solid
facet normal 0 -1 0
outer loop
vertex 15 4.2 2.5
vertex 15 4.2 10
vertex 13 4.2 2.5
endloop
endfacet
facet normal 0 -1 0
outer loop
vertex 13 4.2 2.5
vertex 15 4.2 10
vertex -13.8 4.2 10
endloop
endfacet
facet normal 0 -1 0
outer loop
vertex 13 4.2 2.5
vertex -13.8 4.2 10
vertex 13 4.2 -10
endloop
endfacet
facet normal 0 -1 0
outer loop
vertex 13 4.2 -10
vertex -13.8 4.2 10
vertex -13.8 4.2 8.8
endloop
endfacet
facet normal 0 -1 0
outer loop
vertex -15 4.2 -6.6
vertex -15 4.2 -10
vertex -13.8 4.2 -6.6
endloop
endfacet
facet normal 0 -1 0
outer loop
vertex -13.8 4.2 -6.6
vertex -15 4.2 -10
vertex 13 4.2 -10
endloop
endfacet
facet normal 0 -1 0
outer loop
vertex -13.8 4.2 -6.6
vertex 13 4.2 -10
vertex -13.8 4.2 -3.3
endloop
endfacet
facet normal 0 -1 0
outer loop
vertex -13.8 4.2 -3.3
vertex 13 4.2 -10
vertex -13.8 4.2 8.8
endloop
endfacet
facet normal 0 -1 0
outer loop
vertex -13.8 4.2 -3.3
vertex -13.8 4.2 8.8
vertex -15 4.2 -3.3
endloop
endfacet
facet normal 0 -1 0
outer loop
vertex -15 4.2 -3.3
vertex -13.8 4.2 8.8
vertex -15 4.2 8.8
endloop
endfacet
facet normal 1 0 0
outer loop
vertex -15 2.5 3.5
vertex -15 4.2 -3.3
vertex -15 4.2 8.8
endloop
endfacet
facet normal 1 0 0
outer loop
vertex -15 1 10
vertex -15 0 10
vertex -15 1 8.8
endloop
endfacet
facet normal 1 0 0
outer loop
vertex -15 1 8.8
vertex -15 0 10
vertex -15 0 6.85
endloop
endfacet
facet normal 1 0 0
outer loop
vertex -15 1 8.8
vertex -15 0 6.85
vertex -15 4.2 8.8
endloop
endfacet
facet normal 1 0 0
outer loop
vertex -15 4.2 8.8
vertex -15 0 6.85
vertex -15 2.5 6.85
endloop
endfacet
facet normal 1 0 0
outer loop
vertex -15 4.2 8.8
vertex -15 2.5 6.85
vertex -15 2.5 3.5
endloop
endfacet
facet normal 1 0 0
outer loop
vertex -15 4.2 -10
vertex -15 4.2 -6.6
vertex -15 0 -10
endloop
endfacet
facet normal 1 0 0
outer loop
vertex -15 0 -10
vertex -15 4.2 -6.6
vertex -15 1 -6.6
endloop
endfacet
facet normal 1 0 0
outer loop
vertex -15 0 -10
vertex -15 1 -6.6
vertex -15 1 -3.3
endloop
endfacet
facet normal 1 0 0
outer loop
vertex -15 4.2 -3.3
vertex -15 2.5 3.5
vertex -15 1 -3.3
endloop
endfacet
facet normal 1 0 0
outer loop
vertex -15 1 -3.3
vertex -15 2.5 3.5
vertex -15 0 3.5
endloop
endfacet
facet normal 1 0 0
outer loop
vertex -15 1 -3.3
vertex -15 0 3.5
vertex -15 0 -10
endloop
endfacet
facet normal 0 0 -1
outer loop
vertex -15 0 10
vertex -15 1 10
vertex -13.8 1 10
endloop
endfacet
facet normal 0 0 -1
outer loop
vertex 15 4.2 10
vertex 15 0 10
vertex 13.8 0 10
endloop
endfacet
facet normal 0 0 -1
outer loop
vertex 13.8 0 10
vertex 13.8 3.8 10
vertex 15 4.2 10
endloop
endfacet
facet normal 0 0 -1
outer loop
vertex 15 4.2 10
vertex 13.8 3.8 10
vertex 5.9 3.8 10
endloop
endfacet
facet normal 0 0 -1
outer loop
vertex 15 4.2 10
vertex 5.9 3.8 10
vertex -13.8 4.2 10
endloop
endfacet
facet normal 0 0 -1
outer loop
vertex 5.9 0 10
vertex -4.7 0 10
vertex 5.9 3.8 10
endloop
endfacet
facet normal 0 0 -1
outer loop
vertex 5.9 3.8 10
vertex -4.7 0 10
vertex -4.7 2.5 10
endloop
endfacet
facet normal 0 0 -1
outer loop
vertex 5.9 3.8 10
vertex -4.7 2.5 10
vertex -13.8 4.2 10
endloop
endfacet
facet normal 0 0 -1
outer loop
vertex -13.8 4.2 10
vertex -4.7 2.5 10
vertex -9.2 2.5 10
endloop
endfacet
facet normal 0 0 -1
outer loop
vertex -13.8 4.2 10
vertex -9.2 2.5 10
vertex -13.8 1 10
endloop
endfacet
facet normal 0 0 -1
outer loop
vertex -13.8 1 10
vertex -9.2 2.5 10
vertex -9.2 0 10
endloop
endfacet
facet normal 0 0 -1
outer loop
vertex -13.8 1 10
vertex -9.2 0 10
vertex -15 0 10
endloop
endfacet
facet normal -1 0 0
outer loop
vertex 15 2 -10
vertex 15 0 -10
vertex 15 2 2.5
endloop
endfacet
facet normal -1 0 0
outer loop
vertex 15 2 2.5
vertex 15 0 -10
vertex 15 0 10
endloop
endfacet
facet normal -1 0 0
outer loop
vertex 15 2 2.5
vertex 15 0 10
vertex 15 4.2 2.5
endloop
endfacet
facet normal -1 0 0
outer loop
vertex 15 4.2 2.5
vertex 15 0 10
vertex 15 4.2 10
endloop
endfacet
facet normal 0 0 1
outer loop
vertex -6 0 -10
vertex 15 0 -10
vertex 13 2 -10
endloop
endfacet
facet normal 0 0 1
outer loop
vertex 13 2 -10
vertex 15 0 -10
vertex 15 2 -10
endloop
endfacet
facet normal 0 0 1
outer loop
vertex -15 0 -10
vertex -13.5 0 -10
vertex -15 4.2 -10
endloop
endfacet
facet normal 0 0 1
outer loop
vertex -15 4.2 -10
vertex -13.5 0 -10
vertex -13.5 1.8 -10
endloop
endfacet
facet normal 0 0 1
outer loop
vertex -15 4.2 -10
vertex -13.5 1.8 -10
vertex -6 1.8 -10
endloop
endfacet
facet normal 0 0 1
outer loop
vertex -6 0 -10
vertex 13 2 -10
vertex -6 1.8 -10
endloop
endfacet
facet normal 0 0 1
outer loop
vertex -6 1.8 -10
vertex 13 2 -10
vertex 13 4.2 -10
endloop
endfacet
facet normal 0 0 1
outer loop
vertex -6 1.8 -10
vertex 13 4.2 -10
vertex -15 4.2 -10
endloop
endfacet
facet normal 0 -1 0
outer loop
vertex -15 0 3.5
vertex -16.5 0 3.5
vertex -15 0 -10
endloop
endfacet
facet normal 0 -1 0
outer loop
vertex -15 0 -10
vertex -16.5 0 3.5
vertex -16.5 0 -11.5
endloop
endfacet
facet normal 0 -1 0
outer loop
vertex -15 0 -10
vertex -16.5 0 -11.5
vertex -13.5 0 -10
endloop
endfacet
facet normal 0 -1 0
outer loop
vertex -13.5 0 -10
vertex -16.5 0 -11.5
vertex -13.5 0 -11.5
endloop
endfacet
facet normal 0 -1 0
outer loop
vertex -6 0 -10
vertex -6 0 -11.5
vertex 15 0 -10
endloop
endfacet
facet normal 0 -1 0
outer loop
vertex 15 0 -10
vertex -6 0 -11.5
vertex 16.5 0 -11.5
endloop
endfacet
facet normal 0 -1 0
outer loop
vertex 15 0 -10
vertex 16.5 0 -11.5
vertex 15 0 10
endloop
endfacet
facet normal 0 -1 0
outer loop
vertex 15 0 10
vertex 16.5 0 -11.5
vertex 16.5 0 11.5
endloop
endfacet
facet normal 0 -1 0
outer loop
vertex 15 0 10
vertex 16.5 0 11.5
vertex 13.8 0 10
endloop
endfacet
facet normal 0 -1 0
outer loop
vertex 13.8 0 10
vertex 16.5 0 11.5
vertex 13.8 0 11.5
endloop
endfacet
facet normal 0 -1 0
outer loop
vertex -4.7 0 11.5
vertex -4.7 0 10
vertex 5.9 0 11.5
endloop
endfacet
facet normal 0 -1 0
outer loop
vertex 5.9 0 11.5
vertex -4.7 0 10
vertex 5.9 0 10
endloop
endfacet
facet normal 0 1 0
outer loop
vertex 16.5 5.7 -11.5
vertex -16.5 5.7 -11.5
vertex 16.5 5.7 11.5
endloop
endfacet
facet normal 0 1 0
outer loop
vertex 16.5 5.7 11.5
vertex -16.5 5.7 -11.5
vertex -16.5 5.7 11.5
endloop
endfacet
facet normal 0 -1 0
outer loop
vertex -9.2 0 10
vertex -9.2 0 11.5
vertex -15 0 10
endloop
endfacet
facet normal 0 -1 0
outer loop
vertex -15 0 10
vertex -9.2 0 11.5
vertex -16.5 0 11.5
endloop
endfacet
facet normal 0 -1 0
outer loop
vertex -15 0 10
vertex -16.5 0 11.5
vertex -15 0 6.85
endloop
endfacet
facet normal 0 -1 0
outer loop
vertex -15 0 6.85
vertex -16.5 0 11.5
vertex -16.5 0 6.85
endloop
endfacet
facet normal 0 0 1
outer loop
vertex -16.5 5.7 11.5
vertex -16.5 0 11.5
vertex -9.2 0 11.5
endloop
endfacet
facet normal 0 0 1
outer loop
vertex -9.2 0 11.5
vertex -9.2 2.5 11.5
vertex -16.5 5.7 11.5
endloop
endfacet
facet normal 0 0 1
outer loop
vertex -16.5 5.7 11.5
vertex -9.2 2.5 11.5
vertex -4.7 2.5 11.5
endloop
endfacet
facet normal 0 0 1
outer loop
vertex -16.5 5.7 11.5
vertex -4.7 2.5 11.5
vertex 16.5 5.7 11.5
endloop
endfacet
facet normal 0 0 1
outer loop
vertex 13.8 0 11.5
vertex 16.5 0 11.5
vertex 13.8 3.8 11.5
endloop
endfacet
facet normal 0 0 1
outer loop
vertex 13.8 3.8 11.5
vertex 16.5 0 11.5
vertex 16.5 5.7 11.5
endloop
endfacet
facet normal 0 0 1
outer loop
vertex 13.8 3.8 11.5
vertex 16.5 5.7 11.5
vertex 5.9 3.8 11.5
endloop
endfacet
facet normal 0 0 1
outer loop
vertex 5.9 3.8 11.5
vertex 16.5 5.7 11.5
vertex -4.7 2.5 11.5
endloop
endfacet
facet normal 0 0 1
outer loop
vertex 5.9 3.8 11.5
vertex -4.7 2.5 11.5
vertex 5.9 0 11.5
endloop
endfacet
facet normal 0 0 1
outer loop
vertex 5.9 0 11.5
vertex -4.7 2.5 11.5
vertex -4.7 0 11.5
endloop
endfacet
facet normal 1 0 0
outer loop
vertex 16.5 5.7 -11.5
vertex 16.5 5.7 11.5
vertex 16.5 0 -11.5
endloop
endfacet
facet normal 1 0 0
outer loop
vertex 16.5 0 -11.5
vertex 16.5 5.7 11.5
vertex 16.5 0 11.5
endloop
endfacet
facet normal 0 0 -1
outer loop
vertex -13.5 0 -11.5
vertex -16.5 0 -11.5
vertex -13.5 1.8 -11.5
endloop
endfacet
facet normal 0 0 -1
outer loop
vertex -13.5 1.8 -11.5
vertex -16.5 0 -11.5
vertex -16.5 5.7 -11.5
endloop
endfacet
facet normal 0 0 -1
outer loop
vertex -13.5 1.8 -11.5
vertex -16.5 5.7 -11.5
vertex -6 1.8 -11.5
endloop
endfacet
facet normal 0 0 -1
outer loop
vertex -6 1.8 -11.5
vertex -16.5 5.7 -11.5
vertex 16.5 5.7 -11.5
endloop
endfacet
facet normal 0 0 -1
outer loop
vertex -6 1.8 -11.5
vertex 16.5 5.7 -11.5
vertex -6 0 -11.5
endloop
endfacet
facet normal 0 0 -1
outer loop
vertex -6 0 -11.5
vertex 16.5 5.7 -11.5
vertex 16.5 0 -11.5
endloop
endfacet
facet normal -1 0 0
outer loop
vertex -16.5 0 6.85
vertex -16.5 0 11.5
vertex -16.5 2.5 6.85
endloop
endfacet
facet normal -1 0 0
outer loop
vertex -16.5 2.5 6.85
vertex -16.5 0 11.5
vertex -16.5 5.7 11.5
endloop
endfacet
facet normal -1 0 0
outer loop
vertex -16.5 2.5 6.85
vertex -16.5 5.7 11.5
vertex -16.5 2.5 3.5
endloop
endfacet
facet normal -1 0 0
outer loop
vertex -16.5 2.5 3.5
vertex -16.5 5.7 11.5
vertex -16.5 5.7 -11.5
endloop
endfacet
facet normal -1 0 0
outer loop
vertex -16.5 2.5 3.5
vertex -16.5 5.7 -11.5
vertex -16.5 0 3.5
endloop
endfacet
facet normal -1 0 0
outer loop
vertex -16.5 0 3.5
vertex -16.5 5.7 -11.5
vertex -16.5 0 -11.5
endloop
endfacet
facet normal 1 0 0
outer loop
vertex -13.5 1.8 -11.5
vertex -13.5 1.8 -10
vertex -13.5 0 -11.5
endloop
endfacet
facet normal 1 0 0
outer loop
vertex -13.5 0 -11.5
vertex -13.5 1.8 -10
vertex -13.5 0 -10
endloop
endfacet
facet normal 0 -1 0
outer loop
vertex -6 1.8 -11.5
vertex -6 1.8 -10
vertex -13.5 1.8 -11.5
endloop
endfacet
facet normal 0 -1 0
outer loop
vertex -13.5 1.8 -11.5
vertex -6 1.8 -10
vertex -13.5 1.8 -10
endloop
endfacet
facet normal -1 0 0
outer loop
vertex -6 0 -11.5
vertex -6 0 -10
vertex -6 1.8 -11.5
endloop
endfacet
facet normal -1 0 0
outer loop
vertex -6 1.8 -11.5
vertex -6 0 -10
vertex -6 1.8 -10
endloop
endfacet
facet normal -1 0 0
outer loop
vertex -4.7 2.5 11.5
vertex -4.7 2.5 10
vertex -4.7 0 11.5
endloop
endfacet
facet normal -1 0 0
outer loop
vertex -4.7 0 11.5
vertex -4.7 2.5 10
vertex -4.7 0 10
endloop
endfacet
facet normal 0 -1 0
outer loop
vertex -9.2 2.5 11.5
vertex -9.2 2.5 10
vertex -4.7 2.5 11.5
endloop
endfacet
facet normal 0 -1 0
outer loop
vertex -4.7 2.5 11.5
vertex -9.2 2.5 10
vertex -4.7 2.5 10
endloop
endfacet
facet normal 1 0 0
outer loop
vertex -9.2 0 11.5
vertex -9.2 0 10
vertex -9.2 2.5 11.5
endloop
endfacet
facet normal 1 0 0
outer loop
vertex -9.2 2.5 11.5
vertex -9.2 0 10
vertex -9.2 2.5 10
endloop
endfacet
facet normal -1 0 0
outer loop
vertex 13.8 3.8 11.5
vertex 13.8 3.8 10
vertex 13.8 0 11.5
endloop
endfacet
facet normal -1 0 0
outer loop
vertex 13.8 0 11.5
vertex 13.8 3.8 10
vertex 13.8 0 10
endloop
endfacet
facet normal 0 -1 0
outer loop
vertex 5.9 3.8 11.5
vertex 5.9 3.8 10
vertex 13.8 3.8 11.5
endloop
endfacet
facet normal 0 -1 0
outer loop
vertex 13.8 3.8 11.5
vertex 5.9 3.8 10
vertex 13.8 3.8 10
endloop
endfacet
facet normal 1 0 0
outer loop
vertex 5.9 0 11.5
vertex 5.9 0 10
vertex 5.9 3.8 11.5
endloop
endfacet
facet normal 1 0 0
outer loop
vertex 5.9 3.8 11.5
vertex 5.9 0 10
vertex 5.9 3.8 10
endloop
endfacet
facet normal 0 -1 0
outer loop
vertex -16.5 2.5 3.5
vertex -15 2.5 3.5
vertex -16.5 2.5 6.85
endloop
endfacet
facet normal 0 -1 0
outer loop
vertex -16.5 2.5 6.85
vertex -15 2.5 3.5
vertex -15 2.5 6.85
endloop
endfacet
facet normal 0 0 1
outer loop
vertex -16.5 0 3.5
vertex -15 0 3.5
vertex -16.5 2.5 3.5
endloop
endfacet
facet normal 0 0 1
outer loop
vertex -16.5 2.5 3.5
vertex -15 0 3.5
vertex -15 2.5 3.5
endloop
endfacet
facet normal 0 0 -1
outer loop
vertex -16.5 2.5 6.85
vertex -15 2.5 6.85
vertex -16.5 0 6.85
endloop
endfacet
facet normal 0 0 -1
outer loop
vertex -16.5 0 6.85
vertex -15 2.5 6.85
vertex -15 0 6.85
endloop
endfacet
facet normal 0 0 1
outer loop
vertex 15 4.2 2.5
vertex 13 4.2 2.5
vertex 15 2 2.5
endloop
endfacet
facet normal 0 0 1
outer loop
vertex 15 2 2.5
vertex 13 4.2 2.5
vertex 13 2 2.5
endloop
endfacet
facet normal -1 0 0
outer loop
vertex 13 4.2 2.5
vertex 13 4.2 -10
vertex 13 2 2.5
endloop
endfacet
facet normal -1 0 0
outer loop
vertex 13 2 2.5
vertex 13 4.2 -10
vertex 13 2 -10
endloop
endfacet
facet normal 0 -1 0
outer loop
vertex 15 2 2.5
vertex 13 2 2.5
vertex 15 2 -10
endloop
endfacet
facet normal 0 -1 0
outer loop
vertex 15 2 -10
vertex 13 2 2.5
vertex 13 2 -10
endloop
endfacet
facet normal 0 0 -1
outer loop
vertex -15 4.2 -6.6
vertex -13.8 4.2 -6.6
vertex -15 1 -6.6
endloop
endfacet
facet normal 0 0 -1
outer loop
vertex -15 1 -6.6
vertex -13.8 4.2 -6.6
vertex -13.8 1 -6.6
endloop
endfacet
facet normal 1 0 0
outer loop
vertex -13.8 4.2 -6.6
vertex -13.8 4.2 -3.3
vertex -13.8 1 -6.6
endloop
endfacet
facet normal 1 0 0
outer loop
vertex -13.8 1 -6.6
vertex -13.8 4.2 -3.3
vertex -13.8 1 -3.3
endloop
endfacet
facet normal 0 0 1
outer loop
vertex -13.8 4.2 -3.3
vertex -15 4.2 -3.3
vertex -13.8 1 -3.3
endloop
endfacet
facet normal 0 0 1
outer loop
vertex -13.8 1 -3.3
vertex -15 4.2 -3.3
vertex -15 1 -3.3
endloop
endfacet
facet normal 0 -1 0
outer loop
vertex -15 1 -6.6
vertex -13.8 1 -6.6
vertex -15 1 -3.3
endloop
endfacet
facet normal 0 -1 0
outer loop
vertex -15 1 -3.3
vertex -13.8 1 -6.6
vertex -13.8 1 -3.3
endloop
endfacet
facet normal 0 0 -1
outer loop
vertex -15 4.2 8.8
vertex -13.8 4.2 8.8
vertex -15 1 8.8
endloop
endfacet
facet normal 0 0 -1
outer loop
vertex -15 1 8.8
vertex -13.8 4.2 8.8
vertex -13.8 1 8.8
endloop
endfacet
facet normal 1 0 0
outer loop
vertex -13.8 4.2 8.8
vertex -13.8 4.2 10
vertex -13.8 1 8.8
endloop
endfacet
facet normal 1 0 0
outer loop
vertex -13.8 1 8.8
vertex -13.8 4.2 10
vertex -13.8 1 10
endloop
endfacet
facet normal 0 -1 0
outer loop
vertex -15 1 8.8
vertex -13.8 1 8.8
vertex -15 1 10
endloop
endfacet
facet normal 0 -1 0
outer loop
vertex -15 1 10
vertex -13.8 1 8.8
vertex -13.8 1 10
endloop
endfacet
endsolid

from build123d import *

# Parameters (mm, degrees)
SKETCH1_W           = 33
SKETCH1_H           = 23
SKETCH1_W_2         = 30
SKETCH1_H_2         = 20
BOSS_EXTRUDE1_DEPTH = 5.7
SKETCH2_W           = 30
SKETCH2_H           = 20
BOSS_EXTRUDE2_DEPTH = 1.5
CUT_EXTRUDE1_REACH  = 25
SKETCH3_W           = 7.5
SKETCH3_H           = 3.6
CUT_EXTRUDE2_REACH  = 25
SKETCH4_W           = 7.9
SKETCH4_H           = 7.6
SKETCH4_W_2         = 4.5
SKETCH4_H_2         = 5
CUT_EXTRUDE3_REACH  = 35
SKETCH5_W           = 3.35
SKETCH5_H           = 5
SKETCH6_W           = 2
SKETCH6_H           = 12.5
BOSS_EXTRUDE3_DEPTH = 2.2
SKETCH7_W           = 1.2
SKETCH7_H           = 3.3
SKETCH7_H_2         = 1.2
BOSS_EXTRUDE4_DEPTH = 3.2


with BuildPart() as part:
    # Sketch1 → Boss-Extrude1 (new body)
    with BuildSketch(Plane(origin=(0, 0, 0), x_dir=(1, 0, 0), z_dir=(0, 1, 0))):
        Rectangle(SKETCH1_W, SKETCH1_H)
        Rectangle(SKETCH1_W_2, SKETCH1_H_2, mode=Mode.SUBTRACT)
    extrude(amount=BOSS_EXTRUDE1_DEPTH)

    # Sketch2 → Boss-Extrude2 (add)
    with BuildSketch(Plane(origin=(0, 5.7, 0), x_dir=(1, 0, 0), z_dir=(0, 1, 0))):
        Rectangle(SKETCH2_W, SKETCH2_H)
    extrude(amount=-BOSS_EXTRUDE2_DEPTH)

    # Sketch3 → Cut-Extrude1 (cut, up to next)
    with BuildSketch(Plane(origin=(0, 0, -11.5), x_dir=(-1, 0, 0), z_dir=(0, 0, -1)), mode=Mode.PRIVATE) as cut_extrude1_sk1:
        with Locations((9.75, 0)):
            Rectangle(SKETCH3_W, SKETCH3_H)
    cut_extrude1_tool1 = extrude(cut_extrude1_sk1.sketch, amount=-CUT_EXTRUDE1_REACH, mode=Mode.PRIVATE) & part.part
    add(cut_extrude1_tool1.solids().sort_by_distance((-9.75, 0, -11.5))[0], mode=Mode.SUBTRACT)

    # Sketch4 → Cut-Extrude2 (cut, up to next)
    with BuildSketch(Plane.XY.offset(11.5), mode=Mode.PRIVATE) as cut_extrude2_sk1:
        with Locations((9.85, 0)):
            Rectangle(SKETCH4_W, SKETCH4_H)
    cut_extrude2_tool1 = extrude(cut_extrude2_sk1.sketch, amount=-CUT_EXTRUDE2_REACH, mode=Mode.PRIVATE) & part.part
    add(cut_extrude2_tool1.solids().sort_by_distance((9.85, 0, 11.5))[0], mode=Mode.SUBTRACT)
    # Sketch4 → Cut-Extrude2 (cut, up to next)
    with BuildSketch(Plane.XY.offset(11.5), mode=Mode.PRIVATE) as cut_extrude2_sk2:
        with Locations((-6.95, 0)):
            Rectangle(SKETCH4_W_2, SKETCH4_H_2)
    cut_extrude2_tool2 = extrude(cut_extrude2_sk2.sketch, amount=-CUT_EXTRUDE2_REACH, mode=Mode.PRIVATE) & part.part
    add(cut_extrude2_tool2.solids().sort_by_distance((-6.95, 0, 11.5))[0], mode=Mode.SUBTRACT)

    # Sketch5 → Cut-Extrude3 (cut, up to next)
    with BuildSketch(Plane.ZY.offset(16.5), mode=Mode.PRIVATE) as cut_extrude3_sk1:
        with Locations((5.175, 0)):
            Rectangle(SKETCH5_W, SKETCH5_H)
    cut_extrude3_tool1 = extrude(cut_extrude3_sk1.sketch, amount=-CUT_EXTRUDE3_REACH, mode=Mode.PRIVATE) & part.part
    add(cut_extrude3_tool1.solids().sort_by_distance((-16.5, 0, 5.175))[0], mode=Mode.SUBTRACT)

    # Sketch6 → Boss-Extrude3 (add)
    with BuildSketch(Plane.XZ.offset(-4.2)):
        with Locations((14, -3.75)):
            Rectangle(SKETCH6_W, SKETCH6_H)
    extrude(amount=BOSS_EXTRUDE3_DEPTH)

    # Sketch7 → Boss-Extrude4 (add)
    with BuildSketch(Plane.XZ.offset(-4.2)):
        with Locations((-14.4, -4.95)):
            Rectangle(SKETCH7_W, SKETCH7_H)
        with Locations((-14.4, 9.4)):
            Rectangle(SKETCH7_W, SKETCH7_H_2)
    extrude(amount=BOSS_EXTRUDE4_DEPTH)


solid = part.part
